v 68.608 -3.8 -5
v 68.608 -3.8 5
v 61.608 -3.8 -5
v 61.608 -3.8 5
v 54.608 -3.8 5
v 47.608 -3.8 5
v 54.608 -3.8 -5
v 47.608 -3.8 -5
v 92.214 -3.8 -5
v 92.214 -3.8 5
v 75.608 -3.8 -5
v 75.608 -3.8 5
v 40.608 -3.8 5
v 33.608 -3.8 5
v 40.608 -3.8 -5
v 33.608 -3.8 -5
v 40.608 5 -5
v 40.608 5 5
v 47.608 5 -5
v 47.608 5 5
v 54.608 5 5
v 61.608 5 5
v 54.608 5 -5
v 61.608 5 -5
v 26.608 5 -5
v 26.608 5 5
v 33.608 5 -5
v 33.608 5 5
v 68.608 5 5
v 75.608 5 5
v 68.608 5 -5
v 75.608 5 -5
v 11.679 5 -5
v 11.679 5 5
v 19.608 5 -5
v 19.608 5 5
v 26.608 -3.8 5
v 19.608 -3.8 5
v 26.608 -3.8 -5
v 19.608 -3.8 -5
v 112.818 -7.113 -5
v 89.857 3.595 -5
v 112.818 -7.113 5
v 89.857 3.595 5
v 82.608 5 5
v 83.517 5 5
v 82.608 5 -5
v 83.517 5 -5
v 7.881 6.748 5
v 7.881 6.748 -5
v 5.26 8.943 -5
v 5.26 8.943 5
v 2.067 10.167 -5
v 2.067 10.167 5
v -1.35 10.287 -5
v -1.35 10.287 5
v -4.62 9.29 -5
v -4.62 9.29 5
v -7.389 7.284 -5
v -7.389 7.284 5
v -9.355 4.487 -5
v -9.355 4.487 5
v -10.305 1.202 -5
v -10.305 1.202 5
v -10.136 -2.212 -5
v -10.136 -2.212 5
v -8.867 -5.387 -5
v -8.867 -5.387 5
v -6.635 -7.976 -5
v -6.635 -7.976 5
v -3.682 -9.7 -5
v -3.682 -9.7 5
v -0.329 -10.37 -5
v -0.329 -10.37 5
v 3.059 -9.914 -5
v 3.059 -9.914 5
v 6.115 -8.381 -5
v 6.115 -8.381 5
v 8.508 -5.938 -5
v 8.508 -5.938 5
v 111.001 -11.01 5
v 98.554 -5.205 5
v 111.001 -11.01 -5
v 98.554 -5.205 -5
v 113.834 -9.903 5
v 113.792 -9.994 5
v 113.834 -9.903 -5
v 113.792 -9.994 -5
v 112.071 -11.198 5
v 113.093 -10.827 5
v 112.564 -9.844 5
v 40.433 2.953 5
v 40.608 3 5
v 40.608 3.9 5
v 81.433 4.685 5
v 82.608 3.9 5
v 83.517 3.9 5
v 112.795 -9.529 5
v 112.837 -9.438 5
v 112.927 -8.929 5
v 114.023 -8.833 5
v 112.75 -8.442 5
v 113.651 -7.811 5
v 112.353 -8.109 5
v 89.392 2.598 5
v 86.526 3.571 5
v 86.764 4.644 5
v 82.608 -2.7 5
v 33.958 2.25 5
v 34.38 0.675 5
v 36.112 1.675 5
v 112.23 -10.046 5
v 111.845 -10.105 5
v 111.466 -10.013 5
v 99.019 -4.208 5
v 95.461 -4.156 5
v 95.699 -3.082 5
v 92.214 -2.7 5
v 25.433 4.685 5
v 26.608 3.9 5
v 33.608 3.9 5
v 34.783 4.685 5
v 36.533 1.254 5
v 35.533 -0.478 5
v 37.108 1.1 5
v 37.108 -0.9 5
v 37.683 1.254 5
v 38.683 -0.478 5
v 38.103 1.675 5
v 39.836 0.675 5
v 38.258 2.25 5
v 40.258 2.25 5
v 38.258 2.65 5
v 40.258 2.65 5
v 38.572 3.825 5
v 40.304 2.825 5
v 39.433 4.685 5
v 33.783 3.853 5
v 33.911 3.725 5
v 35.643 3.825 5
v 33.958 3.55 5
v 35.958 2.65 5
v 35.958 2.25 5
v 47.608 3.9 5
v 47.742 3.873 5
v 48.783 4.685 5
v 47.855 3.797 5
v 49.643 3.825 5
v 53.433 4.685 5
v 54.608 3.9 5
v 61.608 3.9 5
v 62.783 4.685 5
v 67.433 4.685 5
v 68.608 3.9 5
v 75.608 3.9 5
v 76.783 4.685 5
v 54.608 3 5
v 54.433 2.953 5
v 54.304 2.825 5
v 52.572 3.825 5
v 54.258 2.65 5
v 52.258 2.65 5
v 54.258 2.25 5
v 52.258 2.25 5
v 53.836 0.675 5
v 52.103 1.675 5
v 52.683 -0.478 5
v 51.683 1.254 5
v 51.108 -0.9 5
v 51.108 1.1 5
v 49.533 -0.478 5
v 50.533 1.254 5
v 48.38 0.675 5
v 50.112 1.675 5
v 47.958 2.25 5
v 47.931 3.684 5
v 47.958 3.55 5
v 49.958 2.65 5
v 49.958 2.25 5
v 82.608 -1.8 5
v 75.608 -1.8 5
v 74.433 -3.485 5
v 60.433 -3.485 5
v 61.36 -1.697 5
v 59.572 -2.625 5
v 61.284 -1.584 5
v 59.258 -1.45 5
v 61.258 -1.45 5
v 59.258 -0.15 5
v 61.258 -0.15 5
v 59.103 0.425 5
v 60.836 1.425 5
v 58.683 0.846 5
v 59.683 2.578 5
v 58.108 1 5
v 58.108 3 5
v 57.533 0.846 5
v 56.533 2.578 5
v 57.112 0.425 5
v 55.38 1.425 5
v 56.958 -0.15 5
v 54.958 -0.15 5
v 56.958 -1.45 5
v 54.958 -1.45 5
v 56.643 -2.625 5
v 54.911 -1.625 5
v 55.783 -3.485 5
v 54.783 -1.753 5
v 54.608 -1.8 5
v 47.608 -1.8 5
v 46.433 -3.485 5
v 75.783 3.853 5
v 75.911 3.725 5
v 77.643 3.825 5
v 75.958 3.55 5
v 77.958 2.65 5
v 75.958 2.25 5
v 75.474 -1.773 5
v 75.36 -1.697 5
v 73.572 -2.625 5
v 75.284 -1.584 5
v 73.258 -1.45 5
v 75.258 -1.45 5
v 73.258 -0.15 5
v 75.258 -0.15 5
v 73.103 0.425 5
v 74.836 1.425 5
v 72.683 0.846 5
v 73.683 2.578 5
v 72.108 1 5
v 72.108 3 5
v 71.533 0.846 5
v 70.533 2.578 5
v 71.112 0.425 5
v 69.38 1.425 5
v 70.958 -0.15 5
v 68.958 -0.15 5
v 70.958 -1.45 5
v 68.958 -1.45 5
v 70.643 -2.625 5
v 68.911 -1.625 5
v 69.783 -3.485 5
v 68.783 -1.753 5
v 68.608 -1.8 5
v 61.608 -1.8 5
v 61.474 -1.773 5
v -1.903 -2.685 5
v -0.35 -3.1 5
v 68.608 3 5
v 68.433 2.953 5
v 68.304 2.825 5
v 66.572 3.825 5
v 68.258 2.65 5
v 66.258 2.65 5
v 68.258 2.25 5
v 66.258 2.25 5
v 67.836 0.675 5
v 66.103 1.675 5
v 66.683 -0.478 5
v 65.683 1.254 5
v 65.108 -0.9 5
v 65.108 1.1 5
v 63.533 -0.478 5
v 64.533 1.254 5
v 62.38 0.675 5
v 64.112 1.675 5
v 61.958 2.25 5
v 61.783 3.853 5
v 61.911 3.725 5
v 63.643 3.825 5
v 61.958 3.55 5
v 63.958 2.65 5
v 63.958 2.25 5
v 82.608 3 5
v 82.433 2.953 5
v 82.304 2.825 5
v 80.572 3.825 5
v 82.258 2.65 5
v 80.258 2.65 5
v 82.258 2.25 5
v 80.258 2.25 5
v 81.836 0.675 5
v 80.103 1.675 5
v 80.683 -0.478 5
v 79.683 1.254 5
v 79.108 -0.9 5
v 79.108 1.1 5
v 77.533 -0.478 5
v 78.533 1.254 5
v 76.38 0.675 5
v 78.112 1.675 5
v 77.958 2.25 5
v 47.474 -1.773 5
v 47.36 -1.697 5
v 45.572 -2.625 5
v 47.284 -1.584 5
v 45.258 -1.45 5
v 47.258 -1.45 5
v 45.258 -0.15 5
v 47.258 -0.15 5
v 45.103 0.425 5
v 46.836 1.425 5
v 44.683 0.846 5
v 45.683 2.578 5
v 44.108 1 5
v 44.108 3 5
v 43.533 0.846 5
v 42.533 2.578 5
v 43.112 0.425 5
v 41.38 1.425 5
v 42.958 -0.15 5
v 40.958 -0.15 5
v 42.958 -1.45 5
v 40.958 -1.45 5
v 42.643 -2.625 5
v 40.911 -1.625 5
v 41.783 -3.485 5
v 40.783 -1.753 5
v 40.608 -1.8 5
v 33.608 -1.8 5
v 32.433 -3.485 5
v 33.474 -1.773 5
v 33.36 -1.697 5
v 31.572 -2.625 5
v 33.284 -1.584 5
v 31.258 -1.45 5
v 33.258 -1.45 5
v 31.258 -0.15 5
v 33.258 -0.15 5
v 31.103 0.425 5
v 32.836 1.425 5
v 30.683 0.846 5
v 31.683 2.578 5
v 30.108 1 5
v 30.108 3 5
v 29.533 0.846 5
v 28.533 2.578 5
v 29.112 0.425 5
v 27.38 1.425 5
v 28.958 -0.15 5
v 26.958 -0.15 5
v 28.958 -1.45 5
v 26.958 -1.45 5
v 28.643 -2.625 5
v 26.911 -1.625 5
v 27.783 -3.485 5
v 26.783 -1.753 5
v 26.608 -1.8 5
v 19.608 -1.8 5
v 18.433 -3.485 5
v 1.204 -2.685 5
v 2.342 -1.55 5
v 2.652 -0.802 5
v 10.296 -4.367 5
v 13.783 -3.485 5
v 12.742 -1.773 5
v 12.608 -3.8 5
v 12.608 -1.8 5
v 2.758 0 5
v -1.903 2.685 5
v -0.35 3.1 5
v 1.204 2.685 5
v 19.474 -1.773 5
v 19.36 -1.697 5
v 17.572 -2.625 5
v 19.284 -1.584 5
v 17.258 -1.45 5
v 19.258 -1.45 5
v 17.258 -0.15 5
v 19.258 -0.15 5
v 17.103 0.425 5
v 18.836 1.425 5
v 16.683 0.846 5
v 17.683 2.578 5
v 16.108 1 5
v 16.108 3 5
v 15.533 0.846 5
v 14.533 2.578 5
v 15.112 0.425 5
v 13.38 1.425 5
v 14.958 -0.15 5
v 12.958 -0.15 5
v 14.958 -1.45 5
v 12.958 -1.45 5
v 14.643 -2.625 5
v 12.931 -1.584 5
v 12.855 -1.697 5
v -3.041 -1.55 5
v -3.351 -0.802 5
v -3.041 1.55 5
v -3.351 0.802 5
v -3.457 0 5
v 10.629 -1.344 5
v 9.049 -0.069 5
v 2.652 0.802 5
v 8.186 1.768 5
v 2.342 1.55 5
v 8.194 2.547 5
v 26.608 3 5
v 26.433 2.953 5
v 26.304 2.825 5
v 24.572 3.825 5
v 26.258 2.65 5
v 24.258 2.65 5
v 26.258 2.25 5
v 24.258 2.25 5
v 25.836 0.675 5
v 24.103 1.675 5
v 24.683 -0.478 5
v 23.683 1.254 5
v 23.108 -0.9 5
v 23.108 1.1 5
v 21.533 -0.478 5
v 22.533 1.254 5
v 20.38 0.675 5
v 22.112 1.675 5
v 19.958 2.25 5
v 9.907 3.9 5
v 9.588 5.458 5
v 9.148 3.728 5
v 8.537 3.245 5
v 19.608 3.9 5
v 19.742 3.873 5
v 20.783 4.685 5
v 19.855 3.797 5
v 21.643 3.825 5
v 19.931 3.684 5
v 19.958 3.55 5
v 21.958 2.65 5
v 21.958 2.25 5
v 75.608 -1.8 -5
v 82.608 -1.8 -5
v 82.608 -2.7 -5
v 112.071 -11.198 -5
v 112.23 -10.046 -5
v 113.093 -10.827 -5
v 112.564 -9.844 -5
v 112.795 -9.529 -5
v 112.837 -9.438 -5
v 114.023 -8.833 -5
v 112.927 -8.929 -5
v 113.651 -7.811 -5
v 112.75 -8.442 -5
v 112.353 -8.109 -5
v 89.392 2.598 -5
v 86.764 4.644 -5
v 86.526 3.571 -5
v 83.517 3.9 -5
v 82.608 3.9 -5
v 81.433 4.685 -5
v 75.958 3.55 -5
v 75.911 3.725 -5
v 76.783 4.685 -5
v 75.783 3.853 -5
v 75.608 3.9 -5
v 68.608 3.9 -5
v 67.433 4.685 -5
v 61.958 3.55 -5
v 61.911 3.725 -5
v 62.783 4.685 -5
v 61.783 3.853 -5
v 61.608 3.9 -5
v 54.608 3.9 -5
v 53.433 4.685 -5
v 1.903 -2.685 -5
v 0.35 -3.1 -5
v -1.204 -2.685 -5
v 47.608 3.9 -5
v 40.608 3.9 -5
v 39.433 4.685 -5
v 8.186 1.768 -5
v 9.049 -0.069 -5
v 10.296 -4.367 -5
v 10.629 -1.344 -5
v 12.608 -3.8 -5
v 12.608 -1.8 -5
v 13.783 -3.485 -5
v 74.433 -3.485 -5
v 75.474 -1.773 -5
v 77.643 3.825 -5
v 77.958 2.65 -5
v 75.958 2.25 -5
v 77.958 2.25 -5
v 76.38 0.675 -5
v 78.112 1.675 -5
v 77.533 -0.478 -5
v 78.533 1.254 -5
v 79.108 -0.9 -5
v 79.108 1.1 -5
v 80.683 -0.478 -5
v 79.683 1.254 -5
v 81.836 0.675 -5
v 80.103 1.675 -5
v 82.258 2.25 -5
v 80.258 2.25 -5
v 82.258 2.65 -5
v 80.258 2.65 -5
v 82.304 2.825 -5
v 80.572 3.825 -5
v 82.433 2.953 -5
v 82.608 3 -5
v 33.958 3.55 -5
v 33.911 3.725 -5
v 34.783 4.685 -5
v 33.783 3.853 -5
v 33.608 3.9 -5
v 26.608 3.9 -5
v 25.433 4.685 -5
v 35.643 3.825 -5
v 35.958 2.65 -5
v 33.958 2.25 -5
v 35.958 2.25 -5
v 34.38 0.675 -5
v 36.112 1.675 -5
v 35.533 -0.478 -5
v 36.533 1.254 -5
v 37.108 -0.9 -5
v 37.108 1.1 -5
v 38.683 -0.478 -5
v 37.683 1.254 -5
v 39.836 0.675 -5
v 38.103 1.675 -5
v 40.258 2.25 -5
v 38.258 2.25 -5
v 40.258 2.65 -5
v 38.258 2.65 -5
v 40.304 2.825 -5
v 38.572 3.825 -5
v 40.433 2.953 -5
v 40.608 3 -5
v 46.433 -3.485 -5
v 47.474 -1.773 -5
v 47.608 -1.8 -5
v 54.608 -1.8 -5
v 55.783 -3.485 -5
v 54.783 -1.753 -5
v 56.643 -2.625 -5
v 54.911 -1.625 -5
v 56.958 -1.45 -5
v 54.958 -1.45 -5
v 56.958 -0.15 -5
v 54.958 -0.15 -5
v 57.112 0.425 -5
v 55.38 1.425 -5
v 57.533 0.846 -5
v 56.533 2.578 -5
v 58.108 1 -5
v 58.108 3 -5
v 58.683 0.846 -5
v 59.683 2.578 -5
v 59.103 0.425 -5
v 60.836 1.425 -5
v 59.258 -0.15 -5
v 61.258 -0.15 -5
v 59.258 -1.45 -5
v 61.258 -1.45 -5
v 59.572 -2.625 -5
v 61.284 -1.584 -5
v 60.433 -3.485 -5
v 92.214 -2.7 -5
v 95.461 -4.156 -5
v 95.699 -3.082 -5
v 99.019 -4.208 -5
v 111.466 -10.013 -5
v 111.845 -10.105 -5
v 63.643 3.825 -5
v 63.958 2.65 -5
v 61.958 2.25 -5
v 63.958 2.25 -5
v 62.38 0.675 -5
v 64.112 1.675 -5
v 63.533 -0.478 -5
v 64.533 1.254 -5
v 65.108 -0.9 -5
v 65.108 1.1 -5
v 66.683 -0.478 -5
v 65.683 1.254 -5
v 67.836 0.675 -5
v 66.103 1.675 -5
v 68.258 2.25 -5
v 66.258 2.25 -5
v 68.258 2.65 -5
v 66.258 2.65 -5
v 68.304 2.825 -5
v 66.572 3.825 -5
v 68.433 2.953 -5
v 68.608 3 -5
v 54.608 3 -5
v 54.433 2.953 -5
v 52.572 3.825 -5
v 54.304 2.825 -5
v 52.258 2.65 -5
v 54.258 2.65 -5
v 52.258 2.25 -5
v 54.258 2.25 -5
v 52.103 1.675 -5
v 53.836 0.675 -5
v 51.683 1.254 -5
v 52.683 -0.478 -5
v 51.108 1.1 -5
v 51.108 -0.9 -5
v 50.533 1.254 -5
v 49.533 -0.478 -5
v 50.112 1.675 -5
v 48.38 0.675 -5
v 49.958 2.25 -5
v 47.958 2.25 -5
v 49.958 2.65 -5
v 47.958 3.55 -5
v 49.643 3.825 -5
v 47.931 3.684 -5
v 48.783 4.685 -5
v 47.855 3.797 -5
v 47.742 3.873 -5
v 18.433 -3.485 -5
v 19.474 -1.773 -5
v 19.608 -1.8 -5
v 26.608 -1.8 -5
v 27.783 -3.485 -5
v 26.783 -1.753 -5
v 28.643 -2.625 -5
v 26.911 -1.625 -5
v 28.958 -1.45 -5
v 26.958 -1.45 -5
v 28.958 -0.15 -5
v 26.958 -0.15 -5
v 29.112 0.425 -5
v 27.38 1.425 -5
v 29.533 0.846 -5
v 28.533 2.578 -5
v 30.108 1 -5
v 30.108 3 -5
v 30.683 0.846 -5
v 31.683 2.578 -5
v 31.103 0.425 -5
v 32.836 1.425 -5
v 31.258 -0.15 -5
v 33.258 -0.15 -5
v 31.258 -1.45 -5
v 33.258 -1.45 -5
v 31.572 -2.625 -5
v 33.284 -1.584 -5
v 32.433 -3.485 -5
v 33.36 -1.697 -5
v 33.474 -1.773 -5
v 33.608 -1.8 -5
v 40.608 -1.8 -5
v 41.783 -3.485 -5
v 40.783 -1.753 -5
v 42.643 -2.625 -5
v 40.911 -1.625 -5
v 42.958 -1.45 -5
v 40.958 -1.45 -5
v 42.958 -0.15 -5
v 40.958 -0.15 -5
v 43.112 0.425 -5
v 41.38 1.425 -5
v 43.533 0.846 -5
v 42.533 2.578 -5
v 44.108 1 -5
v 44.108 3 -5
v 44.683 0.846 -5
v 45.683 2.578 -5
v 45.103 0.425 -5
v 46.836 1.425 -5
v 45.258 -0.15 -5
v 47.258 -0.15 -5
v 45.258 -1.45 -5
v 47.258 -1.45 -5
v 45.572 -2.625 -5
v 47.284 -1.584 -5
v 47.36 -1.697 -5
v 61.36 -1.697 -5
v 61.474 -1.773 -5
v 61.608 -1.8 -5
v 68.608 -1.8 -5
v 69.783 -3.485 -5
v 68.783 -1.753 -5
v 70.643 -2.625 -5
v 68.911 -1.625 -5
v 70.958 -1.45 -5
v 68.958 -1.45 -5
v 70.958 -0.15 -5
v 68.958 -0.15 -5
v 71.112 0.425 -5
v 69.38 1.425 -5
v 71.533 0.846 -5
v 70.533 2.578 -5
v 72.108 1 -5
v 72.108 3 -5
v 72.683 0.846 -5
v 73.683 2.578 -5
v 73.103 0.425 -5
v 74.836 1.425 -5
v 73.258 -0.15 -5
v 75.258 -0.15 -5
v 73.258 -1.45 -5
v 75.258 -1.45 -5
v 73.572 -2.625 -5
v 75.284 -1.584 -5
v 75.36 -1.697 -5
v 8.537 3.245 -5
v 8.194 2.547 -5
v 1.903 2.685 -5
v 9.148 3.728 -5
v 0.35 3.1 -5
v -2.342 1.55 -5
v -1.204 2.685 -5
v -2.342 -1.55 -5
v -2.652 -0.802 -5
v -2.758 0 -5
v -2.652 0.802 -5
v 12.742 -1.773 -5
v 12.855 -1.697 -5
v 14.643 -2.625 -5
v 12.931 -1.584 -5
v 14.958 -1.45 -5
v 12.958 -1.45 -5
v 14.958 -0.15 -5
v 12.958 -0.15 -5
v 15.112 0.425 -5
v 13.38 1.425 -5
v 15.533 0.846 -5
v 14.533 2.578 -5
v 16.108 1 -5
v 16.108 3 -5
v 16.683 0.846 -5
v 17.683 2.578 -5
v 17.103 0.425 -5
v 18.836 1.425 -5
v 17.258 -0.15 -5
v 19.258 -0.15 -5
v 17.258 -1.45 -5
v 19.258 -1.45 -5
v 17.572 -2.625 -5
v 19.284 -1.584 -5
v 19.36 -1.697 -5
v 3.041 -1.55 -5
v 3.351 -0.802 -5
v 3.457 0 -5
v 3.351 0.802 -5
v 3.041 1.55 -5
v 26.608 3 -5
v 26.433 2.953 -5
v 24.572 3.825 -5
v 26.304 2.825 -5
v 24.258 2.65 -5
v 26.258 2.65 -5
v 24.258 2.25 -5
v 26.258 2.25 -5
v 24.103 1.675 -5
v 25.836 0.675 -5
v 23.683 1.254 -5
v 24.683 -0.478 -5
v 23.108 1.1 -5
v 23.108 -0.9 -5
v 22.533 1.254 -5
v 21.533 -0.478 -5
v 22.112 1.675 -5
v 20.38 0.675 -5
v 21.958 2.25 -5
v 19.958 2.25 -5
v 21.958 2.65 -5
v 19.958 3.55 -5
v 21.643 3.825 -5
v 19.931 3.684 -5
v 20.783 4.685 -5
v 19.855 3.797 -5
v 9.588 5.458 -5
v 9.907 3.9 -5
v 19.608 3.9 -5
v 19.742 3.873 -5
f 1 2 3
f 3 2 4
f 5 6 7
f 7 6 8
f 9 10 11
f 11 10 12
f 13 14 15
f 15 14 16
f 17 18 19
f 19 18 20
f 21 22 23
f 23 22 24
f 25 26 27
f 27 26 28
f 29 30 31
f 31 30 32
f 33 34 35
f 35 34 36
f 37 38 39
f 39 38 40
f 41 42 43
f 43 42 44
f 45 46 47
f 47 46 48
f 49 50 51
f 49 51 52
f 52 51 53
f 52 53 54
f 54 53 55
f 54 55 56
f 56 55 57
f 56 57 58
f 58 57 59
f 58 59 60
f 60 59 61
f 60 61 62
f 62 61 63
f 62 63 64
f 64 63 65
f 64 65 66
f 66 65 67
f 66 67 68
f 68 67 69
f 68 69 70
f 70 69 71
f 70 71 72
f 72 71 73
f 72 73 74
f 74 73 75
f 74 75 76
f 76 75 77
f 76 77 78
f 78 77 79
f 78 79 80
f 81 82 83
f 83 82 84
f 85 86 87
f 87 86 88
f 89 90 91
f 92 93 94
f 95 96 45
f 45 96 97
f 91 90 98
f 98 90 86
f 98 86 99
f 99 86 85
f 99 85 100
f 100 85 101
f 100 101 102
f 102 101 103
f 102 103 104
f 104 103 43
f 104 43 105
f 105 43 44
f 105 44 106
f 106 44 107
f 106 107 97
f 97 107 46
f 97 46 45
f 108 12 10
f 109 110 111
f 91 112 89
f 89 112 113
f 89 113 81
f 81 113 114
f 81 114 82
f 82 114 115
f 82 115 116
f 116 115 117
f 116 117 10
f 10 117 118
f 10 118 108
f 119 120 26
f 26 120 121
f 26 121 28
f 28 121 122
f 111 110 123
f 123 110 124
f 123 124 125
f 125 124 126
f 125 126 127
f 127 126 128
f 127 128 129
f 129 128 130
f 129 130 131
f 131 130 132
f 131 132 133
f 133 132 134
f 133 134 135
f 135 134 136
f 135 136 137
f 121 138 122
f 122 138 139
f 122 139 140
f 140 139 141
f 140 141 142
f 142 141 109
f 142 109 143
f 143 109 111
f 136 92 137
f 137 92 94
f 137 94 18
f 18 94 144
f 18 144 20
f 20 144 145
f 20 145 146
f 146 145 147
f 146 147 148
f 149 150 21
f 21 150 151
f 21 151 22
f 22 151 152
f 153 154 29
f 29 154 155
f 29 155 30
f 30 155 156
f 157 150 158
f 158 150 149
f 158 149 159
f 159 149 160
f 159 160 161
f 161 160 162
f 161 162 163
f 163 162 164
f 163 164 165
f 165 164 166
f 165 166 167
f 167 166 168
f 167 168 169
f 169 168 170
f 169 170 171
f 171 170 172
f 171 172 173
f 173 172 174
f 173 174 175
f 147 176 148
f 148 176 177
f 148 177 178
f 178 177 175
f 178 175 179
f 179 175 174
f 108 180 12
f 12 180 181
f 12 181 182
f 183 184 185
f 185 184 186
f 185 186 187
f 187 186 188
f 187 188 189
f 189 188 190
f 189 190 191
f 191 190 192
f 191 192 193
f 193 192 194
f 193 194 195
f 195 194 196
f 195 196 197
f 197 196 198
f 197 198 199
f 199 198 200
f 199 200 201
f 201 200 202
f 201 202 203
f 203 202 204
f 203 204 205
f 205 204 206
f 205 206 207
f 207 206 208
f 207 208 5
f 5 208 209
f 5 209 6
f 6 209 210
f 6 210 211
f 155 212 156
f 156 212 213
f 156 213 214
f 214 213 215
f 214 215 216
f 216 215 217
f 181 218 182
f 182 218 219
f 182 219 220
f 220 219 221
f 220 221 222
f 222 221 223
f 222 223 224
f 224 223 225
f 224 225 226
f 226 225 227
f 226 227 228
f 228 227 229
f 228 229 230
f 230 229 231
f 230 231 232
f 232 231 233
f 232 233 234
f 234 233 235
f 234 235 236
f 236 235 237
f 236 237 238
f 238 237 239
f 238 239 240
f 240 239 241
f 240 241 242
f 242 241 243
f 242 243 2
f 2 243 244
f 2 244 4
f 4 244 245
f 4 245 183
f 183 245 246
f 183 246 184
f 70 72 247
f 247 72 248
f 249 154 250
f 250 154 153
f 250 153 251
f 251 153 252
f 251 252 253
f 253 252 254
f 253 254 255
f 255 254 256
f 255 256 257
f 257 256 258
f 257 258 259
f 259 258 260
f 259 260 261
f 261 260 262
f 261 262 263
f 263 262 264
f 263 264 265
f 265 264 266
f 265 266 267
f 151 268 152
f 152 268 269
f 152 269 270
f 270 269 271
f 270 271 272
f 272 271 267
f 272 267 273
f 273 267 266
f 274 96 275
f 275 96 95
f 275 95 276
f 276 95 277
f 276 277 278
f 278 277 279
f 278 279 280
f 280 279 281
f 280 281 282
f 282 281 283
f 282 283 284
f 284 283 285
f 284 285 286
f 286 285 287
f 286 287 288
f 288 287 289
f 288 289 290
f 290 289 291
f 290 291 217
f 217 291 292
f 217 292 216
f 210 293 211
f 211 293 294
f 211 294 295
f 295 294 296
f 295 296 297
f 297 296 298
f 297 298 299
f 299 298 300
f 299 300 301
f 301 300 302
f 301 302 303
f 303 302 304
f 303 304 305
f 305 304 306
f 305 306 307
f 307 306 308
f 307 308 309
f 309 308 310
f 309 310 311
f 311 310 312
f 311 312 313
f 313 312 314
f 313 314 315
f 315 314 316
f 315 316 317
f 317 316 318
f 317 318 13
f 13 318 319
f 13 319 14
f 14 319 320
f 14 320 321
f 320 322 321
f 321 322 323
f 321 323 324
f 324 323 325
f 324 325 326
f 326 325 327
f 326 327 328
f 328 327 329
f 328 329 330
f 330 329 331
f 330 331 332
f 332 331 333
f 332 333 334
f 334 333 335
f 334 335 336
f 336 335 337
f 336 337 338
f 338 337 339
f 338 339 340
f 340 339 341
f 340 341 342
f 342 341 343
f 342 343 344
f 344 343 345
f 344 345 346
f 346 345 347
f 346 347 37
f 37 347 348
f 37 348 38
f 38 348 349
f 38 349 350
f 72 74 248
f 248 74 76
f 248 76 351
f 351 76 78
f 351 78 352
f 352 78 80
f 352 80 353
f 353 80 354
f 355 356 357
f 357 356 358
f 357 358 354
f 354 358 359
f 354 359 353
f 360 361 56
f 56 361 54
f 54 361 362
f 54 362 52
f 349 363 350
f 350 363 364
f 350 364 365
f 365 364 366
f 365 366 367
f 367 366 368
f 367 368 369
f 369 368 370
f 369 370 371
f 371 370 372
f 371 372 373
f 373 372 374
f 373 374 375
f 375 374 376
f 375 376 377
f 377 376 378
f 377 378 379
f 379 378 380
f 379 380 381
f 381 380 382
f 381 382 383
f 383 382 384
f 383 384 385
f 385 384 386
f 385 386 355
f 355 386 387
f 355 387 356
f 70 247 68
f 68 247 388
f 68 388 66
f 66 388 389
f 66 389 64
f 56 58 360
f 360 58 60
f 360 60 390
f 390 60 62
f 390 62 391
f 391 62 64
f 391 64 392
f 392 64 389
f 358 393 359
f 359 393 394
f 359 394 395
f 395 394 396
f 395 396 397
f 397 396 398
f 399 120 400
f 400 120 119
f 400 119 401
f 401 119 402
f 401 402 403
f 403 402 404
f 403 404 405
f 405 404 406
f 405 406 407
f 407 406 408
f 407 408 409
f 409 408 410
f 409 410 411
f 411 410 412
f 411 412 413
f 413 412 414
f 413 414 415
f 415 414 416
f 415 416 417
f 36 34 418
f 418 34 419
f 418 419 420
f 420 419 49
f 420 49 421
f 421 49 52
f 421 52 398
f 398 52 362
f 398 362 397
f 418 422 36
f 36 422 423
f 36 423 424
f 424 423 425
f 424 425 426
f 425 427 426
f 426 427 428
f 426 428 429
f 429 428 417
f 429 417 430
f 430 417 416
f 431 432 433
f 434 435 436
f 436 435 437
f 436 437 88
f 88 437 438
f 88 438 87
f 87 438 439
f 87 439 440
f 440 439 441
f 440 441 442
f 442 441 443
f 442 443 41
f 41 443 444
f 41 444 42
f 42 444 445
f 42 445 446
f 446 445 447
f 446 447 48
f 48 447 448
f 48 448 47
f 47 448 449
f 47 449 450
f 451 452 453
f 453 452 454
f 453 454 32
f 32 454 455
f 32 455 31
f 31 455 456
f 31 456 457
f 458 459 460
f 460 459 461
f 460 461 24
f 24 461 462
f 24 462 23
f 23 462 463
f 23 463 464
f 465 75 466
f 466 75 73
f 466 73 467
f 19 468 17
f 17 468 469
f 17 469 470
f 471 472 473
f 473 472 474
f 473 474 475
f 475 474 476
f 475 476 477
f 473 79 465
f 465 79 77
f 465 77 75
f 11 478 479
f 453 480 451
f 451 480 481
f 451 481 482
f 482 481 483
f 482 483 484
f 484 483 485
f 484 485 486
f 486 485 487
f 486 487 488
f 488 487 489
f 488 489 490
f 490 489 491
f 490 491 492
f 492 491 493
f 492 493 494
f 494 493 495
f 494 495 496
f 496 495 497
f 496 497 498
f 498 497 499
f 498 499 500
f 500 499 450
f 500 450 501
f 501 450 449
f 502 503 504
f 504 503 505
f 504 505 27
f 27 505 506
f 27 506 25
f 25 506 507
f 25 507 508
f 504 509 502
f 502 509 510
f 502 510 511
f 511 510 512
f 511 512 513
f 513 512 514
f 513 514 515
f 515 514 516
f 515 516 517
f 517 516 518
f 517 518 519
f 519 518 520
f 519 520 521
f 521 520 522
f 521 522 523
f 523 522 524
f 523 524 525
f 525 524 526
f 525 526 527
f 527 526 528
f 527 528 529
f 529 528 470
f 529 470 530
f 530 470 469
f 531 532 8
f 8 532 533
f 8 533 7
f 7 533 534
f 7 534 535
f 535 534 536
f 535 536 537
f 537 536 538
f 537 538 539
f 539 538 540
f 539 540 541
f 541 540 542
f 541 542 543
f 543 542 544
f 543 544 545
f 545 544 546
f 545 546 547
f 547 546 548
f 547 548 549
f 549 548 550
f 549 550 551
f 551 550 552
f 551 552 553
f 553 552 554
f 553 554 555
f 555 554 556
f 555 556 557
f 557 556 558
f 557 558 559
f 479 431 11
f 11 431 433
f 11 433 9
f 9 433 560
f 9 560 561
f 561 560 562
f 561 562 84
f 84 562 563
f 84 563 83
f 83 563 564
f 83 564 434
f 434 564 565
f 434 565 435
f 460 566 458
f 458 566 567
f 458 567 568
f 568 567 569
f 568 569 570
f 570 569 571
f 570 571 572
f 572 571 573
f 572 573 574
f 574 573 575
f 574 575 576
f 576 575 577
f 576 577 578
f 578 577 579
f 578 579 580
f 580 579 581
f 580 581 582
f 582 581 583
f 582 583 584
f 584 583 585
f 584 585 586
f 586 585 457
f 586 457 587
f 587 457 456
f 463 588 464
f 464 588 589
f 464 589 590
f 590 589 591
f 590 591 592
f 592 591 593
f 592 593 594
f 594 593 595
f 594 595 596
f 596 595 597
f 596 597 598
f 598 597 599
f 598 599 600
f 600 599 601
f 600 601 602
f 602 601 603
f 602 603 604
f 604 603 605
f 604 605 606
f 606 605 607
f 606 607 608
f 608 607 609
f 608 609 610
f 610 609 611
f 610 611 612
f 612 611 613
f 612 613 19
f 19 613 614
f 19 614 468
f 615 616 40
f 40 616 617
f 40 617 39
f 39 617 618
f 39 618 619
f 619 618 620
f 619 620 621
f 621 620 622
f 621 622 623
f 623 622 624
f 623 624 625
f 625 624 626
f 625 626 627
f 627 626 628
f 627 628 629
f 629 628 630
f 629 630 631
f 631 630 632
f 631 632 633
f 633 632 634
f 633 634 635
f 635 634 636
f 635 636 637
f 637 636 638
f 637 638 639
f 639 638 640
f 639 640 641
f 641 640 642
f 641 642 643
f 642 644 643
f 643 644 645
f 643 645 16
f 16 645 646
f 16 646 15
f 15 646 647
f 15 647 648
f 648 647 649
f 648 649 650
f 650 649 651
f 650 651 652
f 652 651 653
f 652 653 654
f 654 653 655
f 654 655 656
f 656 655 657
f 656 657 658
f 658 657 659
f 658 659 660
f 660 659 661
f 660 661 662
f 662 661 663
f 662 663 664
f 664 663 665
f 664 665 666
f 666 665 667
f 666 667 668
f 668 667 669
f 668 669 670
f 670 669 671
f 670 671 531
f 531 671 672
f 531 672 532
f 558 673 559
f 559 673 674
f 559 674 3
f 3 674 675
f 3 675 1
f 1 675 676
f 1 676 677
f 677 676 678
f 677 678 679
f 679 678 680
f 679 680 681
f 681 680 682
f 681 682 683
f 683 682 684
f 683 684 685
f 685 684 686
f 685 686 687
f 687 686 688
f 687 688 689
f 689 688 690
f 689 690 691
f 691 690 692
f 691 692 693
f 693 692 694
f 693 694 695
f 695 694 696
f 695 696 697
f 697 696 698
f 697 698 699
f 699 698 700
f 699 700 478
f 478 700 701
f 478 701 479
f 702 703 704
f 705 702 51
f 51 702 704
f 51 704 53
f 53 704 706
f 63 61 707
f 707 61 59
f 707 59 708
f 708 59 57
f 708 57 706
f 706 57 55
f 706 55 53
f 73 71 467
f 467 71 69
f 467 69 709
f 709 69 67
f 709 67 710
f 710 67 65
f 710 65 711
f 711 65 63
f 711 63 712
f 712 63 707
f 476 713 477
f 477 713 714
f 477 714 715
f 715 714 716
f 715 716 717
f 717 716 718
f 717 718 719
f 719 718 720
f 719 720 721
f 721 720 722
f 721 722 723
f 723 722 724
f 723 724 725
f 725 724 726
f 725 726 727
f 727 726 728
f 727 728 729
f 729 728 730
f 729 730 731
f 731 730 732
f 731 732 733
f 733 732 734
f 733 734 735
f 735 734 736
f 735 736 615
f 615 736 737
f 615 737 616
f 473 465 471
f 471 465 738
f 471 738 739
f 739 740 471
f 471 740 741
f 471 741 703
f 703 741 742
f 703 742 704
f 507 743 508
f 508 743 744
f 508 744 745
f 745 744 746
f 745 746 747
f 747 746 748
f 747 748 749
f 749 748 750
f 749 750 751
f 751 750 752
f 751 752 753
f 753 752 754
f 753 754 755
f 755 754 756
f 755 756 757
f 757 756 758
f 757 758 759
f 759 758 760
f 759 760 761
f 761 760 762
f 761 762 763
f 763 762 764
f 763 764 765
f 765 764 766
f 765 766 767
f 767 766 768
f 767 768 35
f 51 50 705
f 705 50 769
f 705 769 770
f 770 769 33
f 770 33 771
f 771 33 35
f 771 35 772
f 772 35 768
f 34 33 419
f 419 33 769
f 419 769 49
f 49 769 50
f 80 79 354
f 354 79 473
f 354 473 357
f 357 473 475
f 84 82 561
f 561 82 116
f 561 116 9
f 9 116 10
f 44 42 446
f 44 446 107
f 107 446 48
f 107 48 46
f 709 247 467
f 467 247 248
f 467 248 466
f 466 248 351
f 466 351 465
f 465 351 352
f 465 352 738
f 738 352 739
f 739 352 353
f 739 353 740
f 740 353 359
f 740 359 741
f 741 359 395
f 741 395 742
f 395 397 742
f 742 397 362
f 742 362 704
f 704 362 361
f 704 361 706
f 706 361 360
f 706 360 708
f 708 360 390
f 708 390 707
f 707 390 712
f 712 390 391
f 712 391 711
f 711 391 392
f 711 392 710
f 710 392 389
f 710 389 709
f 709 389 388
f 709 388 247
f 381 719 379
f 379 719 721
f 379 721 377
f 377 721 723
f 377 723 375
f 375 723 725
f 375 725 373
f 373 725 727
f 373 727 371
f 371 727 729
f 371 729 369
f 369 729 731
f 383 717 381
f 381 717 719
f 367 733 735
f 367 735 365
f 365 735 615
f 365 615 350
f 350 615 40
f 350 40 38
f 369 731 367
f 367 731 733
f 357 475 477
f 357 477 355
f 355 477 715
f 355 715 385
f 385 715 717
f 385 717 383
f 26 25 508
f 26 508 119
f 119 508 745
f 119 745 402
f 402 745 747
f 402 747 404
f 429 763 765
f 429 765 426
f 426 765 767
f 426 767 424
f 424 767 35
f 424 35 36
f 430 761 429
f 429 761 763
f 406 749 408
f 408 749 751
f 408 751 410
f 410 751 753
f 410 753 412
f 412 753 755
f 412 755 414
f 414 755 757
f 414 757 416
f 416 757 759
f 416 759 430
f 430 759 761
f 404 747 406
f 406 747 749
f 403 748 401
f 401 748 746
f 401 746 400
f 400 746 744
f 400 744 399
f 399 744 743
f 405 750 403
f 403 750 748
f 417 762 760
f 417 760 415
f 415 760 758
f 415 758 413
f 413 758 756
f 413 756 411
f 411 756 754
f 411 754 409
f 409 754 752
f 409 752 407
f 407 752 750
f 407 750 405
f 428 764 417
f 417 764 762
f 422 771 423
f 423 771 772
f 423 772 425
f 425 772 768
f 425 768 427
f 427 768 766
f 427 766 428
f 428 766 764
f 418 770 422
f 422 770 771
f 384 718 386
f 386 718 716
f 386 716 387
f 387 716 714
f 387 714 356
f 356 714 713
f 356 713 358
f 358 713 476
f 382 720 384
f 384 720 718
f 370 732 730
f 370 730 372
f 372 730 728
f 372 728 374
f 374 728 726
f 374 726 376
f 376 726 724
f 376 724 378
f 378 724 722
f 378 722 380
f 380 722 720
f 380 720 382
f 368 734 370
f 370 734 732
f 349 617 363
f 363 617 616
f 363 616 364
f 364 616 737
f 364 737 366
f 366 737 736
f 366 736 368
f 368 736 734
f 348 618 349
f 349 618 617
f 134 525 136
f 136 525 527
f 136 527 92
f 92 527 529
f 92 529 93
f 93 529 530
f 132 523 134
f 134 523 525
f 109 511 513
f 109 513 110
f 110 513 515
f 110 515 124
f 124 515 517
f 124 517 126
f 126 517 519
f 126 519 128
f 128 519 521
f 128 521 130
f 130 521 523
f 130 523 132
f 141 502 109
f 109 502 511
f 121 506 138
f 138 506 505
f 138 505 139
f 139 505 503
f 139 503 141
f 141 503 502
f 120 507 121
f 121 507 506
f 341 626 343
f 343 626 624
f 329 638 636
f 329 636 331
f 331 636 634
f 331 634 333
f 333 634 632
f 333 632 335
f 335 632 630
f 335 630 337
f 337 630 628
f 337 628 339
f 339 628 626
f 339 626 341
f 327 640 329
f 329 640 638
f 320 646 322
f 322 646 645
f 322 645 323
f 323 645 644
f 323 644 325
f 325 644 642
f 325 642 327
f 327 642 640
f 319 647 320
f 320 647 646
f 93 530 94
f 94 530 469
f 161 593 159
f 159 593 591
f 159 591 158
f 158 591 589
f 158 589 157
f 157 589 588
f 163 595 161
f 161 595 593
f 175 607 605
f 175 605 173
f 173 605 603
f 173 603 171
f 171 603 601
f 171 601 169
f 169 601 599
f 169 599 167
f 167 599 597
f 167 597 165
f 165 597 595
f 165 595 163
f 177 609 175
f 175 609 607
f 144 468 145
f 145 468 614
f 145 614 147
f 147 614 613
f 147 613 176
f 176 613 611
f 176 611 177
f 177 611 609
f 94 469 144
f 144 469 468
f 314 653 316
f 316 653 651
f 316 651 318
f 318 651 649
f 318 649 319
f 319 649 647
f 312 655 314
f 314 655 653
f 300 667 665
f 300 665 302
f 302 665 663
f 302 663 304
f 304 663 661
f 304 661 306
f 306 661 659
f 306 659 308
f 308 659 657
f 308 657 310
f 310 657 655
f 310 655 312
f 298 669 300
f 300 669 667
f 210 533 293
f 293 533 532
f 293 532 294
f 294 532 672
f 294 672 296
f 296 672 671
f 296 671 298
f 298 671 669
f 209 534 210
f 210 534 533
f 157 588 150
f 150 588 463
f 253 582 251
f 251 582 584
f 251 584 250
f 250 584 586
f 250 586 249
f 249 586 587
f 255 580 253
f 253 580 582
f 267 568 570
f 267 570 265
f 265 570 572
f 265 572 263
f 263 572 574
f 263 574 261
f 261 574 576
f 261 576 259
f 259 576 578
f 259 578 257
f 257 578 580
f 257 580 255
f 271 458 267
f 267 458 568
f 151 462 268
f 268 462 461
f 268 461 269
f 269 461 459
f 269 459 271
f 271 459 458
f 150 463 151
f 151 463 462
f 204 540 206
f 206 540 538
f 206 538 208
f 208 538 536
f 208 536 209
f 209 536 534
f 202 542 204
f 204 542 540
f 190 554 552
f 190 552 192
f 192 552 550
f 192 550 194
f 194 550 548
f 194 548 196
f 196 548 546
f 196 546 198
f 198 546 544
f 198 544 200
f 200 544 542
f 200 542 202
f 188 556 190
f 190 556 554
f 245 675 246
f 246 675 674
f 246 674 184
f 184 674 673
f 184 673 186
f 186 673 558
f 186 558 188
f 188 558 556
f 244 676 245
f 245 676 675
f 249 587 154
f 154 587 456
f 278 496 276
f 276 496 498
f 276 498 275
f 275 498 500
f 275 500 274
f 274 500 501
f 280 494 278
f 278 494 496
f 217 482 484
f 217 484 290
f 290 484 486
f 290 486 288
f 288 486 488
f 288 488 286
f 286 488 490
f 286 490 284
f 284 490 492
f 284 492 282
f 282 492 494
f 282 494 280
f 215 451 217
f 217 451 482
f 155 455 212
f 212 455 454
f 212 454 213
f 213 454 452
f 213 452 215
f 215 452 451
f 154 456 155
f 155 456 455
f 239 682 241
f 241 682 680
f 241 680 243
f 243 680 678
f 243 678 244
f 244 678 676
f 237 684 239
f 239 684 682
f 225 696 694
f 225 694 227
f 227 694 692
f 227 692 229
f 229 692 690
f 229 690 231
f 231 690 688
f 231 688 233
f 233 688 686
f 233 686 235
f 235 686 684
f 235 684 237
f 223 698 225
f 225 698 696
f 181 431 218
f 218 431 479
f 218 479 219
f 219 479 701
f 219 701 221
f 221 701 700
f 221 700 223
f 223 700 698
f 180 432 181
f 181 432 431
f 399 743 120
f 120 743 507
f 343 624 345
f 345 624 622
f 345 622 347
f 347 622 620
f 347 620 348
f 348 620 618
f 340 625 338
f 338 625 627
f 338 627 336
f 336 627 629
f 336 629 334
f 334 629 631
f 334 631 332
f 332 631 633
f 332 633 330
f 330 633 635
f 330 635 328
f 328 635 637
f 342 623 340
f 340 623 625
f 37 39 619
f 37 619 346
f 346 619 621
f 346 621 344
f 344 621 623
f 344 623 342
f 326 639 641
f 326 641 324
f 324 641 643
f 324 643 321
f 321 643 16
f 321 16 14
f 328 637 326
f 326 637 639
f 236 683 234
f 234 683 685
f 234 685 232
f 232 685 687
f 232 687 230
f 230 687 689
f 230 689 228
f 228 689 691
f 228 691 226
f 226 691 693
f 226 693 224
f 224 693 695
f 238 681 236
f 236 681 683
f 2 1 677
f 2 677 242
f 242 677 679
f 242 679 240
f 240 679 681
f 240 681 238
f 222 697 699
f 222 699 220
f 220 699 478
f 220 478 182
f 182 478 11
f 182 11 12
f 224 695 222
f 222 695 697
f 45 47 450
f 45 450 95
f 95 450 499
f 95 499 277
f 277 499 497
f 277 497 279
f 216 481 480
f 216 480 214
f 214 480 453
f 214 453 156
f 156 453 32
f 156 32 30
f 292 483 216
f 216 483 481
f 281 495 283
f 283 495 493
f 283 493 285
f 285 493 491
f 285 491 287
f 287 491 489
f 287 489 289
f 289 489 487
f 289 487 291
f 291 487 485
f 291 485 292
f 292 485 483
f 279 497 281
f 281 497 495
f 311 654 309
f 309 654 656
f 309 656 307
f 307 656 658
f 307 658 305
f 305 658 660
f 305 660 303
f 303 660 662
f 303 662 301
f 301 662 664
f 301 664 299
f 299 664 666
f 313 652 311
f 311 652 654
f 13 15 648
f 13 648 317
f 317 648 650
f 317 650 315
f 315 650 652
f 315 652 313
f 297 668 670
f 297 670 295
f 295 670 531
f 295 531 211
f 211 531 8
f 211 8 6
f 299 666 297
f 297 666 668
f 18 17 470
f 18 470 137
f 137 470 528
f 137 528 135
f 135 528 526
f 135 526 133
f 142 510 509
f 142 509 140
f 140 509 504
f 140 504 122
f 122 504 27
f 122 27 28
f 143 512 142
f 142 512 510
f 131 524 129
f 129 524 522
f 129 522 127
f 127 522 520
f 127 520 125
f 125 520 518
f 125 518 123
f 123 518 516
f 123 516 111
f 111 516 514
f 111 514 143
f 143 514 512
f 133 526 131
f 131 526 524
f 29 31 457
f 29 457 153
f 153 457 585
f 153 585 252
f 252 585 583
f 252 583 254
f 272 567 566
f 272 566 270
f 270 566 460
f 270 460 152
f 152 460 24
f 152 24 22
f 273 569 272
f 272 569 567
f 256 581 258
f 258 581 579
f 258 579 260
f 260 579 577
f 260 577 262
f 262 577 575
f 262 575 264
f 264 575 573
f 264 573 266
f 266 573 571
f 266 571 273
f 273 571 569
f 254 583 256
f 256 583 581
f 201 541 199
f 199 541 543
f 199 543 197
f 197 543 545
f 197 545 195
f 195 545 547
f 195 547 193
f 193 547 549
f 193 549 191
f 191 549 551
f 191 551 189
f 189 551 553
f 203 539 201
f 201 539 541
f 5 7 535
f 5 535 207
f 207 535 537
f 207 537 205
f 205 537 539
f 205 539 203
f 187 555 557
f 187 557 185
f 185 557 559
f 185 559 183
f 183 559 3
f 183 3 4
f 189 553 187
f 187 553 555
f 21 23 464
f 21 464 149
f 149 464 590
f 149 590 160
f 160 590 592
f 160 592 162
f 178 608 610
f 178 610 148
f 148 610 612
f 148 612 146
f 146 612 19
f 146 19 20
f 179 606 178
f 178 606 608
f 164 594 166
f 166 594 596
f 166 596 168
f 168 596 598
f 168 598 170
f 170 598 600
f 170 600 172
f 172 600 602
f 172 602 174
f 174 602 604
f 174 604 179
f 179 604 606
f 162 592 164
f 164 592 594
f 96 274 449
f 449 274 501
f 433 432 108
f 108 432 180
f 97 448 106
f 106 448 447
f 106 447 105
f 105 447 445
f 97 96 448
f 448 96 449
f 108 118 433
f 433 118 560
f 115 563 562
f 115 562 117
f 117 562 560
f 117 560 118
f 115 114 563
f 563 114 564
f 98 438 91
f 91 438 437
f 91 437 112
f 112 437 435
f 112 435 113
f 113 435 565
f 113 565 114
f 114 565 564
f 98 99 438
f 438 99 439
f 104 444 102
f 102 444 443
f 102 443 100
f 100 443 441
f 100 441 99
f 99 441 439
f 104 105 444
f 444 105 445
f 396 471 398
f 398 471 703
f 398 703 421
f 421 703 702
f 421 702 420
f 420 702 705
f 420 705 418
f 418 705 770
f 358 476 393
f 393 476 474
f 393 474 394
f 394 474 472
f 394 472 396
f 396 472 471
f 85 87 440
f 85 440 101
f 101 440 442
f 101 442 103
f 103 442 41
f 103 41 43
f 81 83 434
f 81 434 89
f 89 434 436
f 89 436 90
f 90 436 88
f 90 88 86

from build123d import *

# Parameters (mm, degrees)
BOSS_EXTRU_1_DEPTH         = 5
CONG_4_R                   = 5
CONG_3_R                   = 15
ENL_V_MAT_EXTRU_5_DEPTH    = 116.769346319
R_P_TITION_LIN_AIRE1_COUNT = 5
R_P_TITION_LIN_AIRE1_PITCH = 14
ENL_V_MAT_EXTRU_6_DEPTH    = 116.769346319
CONG_6_R                   = 2.1


with BuildPart() as part:
    # Esquisse1 → Boss.-Extru.1 (new, symmetric)
    with BuildSketch(Plane.XY):
        with BuildLine():
            Line((9.090688918, 5), (86.842811698, 5))
            Line((86.842811698, 5), (114.721401665, -8))
            Line((114.721401665, -8), (112.90414314, -11.897123484))
            Line((112.90414314, -11.897123484), (95.539805791, -3.8))
            Line((95.539805791, -3.8), (9.654047079, -3.8))
            ThreePointArc((9.654047079, -3.8), (-10.353805189, -0.662829619), (9.090688918, 5))
        make_face()
    extrude(amount=BOSS_EXTRU_1_DEPTH, both=True)

    # Congé4
    cong_4_edges = [part.edges().sort_by_distance(p)[0] for p in [
        (9.654047079, -3.8, 0),
        (9.090688918, 5, 0),
    ]]
    fillet(cong_4_edges, radius=CONG_4_R)

    # Congé3
    cong_3_edges = [part.edges().sort_by_distance(p)[0] for p in [
        (95.539805791, -3.8, 0),
        (86.842811698, 5, 0),
    ]]
    fillet(cong_3_edges, radius=CONG_3_R)

    # Esquisse10 → Enlèvement de matière-Révolution1 (revolve, cut)
    with BuildSketch(Plane(origin=(0, 0, 0), x_dir=(1, 0, 0), z_dir=(0, 1, 0))):
        Polygon((0.697564737, 9.975640503), (-0.697564737, -9.975640503), (2.394883818, -10.191885571), (3.790013293, 9.759395434), align=None)
    revolve(axis=Axis((0.697564737, 0, -9.975640503), (0.06975647374413119, 0, -0.9975640502598239)), mode=Mode.SUBTRACT)

    # Esquisse8 → Enlèv. mat.-Extru.5 (cut, symmetric)
    with BuildSketch(Plane(origin=(0, 0, -5), x_dir=(-1, 0, 0), z_dir=(0, 0, -1))):
        with BuildLine():
            Line((-17.257562182, -0.15), (-17.257562182, -1.450000033))
            ThreePointArc((-17.257562182, -1.450000033), (-17.945861236, -3.111700945), (-19.607562149, -3.8))
            Line((-19.607562149, -3.8), (-12.607562215, -3.8))
            ThreePointArc((-12.607562215, -3.8), (-14.269263127, -3.111700945), (-14.957562182, -1.450000033))
            Line((-14.957562182, -1.450000033), (-14.957562182, -0.15))
            ThreePointArc((-14.957562182, -0.15), (-16.107562182, 1), (-17.257562182, -0.15))
        make_face()
        with BuildLine():
            Line((-19.607562281, 3.9), (-12.607562215, 3.9))
            Line((-12.607562215, 3.9), (-12.607562215, -1.8))
            ThreePointArc((-12.607562215, -1.8), (-12.855049565, -1.697487383), (-12.957562182, -1.450000033))
            Line((-12.957562182, -1.450000033), (-12.957562182, -0.15))
            ThreePointArc((-12.957562182, -0.15), (-16.107562182, 3), (-19.257562182, -0.15))
            Line((-19.257562182, -0.15), (-19.257562182, -1.450000033))
            ThreePointArc((-19.257562182, -1.450000033), (-19.360074845, -1.69748743), (-19.607562281, -1.8))
            Line((-19.607562281, -1.8), (-26.607562215, -1.8))
            Line((-26.607562215, -1.8), (-26.607562215, 3))
            ThreePointArc((-26.607562215, 3), (-26.360074865, 2.897487383), (-26.257562248, 2.650000033))
            Line((-26.257562248, 2.650000033), (-26.257562248, 2.25))
            ThreePointArc((-26.257562248, 2.25), (-23.107562248, -0.9), (-19.957562248, 2.25))
            Line((-19.957562248, 2.25), (-19.957562248, 3.550000033))
            ThreePointArc((-19.957562248, 3.550000033), (-19.855049631, 3.797487383), (-19.607562281, 3.9))
        make_face()
        with BuildLine():
            Line((-26.607562215, 5), (-19.607562281, 5))
            ThreePointArc((-19.607562281, 5), (-21.269263193, 4.311700945), (-21.957562248, 2.650000033))
            Line((-21.957562248, 2.650000033), (-21.957562248, 2.25))
            ThreePointArc((-21.957562248, 2.25), (-23.107562248, 1.1), (-24.257562248, 2.25))
            Line((-24.257562248, 2.25), (-24.257562248, 2.650000033))
            ThreePointArc((-24.257562248, 2.650000033), (-24.945861302, 4.311700945), (-26.607562215, 5))
        make_face()
    enl_v_mat_extru_5 = extrude(amount=ENL_V_MAT_EXTRU_5_DEPTH, both=True, mode=Mode.SUBTRACT)

    # Répétition linéaire1: Enlèv. mat.-Extru.5 ×5
    with Locations(*[(i * R_P_TITION_LIN_AIRE1_PITCH, 0, 0) for i in range(1, R_P_TITION_LIN_AIRE1_COUNT)]):
        add(enl_v_mat_extru_5, mode=Mode.SUBTRACT)

    # Esquisse9 → Enlèv. mat.-Extru.6 (cut, through all)
    with BuildSketch(Plane(origin=(0, 0, -5), x_dir=(-1, 0, 0), z_dir=(0, 0, -1))):
        with BuildLine():
            Line((-12.607562215, 3.9), (-12.607562215, -1.8))
            ThreePointArc((-12.607562215, -1.8), (-9.766736082, -0.796647883), (-8.186194586, 1.768288211))
            ThreePointArc((-8.186194586, 1.768288211), (-8.5369321, 3.245312267), (-9.906603899, 3.9))
            Line((-9.906603899, 3.9), (-12.607562215, 3.9))
        make_face()
        with BuildLine():
            Line((-83.517391759, 3.9), (-82.607562215, 3.9))
            Line((-82.607562215, 3.9), (-82.607562215, -2.7))
            Line((-82.607562215, -2.7), (-92.214385852, -2.7))
            ThreePointArc((-92.214385852, -2.7), (-95.699063636, -3.081634285), (-99.018539866, -4.208444629))
            Line((-99.018539866, -4.208444629), (-111.465776875, -10.012686569))
            ThreePointArc((-111.465776875, -10.012686569), (-112.23041528, -10.046071403), (-112.794702924, -9.528997044))
            Line((-112.794702924, -9.528997044), (-112.83696475, -9.438366265))
            ThreePointArc((-112.83696475, -9.438366265), (-112.870349583, -8.67372786), (-112.353275224, -8.109440216))
            Line((-112.353275224, -8.109440216), (-89.391785597, 2.59767824))
            ThreePointArc((-89.391785597, 2.59767824), (-86.525902393, 3.570514499), (-83.517391759, 3.9))
        make_face()
    extrude(amount=-ENL_V_MAT_EXTRU_6_DEPTH, mode=Mode.SUBTRACT)

    # Congé6
    cong_6_edges = [part.edges().sort_by_distance(p)[0] for p in [
        (114.721401665, -8, 0),
        (112.90414314, -11.897123484, 0),
    ]]
    fillet(cong_6_edges, radius=CONG_6_R)


solid = part.part
